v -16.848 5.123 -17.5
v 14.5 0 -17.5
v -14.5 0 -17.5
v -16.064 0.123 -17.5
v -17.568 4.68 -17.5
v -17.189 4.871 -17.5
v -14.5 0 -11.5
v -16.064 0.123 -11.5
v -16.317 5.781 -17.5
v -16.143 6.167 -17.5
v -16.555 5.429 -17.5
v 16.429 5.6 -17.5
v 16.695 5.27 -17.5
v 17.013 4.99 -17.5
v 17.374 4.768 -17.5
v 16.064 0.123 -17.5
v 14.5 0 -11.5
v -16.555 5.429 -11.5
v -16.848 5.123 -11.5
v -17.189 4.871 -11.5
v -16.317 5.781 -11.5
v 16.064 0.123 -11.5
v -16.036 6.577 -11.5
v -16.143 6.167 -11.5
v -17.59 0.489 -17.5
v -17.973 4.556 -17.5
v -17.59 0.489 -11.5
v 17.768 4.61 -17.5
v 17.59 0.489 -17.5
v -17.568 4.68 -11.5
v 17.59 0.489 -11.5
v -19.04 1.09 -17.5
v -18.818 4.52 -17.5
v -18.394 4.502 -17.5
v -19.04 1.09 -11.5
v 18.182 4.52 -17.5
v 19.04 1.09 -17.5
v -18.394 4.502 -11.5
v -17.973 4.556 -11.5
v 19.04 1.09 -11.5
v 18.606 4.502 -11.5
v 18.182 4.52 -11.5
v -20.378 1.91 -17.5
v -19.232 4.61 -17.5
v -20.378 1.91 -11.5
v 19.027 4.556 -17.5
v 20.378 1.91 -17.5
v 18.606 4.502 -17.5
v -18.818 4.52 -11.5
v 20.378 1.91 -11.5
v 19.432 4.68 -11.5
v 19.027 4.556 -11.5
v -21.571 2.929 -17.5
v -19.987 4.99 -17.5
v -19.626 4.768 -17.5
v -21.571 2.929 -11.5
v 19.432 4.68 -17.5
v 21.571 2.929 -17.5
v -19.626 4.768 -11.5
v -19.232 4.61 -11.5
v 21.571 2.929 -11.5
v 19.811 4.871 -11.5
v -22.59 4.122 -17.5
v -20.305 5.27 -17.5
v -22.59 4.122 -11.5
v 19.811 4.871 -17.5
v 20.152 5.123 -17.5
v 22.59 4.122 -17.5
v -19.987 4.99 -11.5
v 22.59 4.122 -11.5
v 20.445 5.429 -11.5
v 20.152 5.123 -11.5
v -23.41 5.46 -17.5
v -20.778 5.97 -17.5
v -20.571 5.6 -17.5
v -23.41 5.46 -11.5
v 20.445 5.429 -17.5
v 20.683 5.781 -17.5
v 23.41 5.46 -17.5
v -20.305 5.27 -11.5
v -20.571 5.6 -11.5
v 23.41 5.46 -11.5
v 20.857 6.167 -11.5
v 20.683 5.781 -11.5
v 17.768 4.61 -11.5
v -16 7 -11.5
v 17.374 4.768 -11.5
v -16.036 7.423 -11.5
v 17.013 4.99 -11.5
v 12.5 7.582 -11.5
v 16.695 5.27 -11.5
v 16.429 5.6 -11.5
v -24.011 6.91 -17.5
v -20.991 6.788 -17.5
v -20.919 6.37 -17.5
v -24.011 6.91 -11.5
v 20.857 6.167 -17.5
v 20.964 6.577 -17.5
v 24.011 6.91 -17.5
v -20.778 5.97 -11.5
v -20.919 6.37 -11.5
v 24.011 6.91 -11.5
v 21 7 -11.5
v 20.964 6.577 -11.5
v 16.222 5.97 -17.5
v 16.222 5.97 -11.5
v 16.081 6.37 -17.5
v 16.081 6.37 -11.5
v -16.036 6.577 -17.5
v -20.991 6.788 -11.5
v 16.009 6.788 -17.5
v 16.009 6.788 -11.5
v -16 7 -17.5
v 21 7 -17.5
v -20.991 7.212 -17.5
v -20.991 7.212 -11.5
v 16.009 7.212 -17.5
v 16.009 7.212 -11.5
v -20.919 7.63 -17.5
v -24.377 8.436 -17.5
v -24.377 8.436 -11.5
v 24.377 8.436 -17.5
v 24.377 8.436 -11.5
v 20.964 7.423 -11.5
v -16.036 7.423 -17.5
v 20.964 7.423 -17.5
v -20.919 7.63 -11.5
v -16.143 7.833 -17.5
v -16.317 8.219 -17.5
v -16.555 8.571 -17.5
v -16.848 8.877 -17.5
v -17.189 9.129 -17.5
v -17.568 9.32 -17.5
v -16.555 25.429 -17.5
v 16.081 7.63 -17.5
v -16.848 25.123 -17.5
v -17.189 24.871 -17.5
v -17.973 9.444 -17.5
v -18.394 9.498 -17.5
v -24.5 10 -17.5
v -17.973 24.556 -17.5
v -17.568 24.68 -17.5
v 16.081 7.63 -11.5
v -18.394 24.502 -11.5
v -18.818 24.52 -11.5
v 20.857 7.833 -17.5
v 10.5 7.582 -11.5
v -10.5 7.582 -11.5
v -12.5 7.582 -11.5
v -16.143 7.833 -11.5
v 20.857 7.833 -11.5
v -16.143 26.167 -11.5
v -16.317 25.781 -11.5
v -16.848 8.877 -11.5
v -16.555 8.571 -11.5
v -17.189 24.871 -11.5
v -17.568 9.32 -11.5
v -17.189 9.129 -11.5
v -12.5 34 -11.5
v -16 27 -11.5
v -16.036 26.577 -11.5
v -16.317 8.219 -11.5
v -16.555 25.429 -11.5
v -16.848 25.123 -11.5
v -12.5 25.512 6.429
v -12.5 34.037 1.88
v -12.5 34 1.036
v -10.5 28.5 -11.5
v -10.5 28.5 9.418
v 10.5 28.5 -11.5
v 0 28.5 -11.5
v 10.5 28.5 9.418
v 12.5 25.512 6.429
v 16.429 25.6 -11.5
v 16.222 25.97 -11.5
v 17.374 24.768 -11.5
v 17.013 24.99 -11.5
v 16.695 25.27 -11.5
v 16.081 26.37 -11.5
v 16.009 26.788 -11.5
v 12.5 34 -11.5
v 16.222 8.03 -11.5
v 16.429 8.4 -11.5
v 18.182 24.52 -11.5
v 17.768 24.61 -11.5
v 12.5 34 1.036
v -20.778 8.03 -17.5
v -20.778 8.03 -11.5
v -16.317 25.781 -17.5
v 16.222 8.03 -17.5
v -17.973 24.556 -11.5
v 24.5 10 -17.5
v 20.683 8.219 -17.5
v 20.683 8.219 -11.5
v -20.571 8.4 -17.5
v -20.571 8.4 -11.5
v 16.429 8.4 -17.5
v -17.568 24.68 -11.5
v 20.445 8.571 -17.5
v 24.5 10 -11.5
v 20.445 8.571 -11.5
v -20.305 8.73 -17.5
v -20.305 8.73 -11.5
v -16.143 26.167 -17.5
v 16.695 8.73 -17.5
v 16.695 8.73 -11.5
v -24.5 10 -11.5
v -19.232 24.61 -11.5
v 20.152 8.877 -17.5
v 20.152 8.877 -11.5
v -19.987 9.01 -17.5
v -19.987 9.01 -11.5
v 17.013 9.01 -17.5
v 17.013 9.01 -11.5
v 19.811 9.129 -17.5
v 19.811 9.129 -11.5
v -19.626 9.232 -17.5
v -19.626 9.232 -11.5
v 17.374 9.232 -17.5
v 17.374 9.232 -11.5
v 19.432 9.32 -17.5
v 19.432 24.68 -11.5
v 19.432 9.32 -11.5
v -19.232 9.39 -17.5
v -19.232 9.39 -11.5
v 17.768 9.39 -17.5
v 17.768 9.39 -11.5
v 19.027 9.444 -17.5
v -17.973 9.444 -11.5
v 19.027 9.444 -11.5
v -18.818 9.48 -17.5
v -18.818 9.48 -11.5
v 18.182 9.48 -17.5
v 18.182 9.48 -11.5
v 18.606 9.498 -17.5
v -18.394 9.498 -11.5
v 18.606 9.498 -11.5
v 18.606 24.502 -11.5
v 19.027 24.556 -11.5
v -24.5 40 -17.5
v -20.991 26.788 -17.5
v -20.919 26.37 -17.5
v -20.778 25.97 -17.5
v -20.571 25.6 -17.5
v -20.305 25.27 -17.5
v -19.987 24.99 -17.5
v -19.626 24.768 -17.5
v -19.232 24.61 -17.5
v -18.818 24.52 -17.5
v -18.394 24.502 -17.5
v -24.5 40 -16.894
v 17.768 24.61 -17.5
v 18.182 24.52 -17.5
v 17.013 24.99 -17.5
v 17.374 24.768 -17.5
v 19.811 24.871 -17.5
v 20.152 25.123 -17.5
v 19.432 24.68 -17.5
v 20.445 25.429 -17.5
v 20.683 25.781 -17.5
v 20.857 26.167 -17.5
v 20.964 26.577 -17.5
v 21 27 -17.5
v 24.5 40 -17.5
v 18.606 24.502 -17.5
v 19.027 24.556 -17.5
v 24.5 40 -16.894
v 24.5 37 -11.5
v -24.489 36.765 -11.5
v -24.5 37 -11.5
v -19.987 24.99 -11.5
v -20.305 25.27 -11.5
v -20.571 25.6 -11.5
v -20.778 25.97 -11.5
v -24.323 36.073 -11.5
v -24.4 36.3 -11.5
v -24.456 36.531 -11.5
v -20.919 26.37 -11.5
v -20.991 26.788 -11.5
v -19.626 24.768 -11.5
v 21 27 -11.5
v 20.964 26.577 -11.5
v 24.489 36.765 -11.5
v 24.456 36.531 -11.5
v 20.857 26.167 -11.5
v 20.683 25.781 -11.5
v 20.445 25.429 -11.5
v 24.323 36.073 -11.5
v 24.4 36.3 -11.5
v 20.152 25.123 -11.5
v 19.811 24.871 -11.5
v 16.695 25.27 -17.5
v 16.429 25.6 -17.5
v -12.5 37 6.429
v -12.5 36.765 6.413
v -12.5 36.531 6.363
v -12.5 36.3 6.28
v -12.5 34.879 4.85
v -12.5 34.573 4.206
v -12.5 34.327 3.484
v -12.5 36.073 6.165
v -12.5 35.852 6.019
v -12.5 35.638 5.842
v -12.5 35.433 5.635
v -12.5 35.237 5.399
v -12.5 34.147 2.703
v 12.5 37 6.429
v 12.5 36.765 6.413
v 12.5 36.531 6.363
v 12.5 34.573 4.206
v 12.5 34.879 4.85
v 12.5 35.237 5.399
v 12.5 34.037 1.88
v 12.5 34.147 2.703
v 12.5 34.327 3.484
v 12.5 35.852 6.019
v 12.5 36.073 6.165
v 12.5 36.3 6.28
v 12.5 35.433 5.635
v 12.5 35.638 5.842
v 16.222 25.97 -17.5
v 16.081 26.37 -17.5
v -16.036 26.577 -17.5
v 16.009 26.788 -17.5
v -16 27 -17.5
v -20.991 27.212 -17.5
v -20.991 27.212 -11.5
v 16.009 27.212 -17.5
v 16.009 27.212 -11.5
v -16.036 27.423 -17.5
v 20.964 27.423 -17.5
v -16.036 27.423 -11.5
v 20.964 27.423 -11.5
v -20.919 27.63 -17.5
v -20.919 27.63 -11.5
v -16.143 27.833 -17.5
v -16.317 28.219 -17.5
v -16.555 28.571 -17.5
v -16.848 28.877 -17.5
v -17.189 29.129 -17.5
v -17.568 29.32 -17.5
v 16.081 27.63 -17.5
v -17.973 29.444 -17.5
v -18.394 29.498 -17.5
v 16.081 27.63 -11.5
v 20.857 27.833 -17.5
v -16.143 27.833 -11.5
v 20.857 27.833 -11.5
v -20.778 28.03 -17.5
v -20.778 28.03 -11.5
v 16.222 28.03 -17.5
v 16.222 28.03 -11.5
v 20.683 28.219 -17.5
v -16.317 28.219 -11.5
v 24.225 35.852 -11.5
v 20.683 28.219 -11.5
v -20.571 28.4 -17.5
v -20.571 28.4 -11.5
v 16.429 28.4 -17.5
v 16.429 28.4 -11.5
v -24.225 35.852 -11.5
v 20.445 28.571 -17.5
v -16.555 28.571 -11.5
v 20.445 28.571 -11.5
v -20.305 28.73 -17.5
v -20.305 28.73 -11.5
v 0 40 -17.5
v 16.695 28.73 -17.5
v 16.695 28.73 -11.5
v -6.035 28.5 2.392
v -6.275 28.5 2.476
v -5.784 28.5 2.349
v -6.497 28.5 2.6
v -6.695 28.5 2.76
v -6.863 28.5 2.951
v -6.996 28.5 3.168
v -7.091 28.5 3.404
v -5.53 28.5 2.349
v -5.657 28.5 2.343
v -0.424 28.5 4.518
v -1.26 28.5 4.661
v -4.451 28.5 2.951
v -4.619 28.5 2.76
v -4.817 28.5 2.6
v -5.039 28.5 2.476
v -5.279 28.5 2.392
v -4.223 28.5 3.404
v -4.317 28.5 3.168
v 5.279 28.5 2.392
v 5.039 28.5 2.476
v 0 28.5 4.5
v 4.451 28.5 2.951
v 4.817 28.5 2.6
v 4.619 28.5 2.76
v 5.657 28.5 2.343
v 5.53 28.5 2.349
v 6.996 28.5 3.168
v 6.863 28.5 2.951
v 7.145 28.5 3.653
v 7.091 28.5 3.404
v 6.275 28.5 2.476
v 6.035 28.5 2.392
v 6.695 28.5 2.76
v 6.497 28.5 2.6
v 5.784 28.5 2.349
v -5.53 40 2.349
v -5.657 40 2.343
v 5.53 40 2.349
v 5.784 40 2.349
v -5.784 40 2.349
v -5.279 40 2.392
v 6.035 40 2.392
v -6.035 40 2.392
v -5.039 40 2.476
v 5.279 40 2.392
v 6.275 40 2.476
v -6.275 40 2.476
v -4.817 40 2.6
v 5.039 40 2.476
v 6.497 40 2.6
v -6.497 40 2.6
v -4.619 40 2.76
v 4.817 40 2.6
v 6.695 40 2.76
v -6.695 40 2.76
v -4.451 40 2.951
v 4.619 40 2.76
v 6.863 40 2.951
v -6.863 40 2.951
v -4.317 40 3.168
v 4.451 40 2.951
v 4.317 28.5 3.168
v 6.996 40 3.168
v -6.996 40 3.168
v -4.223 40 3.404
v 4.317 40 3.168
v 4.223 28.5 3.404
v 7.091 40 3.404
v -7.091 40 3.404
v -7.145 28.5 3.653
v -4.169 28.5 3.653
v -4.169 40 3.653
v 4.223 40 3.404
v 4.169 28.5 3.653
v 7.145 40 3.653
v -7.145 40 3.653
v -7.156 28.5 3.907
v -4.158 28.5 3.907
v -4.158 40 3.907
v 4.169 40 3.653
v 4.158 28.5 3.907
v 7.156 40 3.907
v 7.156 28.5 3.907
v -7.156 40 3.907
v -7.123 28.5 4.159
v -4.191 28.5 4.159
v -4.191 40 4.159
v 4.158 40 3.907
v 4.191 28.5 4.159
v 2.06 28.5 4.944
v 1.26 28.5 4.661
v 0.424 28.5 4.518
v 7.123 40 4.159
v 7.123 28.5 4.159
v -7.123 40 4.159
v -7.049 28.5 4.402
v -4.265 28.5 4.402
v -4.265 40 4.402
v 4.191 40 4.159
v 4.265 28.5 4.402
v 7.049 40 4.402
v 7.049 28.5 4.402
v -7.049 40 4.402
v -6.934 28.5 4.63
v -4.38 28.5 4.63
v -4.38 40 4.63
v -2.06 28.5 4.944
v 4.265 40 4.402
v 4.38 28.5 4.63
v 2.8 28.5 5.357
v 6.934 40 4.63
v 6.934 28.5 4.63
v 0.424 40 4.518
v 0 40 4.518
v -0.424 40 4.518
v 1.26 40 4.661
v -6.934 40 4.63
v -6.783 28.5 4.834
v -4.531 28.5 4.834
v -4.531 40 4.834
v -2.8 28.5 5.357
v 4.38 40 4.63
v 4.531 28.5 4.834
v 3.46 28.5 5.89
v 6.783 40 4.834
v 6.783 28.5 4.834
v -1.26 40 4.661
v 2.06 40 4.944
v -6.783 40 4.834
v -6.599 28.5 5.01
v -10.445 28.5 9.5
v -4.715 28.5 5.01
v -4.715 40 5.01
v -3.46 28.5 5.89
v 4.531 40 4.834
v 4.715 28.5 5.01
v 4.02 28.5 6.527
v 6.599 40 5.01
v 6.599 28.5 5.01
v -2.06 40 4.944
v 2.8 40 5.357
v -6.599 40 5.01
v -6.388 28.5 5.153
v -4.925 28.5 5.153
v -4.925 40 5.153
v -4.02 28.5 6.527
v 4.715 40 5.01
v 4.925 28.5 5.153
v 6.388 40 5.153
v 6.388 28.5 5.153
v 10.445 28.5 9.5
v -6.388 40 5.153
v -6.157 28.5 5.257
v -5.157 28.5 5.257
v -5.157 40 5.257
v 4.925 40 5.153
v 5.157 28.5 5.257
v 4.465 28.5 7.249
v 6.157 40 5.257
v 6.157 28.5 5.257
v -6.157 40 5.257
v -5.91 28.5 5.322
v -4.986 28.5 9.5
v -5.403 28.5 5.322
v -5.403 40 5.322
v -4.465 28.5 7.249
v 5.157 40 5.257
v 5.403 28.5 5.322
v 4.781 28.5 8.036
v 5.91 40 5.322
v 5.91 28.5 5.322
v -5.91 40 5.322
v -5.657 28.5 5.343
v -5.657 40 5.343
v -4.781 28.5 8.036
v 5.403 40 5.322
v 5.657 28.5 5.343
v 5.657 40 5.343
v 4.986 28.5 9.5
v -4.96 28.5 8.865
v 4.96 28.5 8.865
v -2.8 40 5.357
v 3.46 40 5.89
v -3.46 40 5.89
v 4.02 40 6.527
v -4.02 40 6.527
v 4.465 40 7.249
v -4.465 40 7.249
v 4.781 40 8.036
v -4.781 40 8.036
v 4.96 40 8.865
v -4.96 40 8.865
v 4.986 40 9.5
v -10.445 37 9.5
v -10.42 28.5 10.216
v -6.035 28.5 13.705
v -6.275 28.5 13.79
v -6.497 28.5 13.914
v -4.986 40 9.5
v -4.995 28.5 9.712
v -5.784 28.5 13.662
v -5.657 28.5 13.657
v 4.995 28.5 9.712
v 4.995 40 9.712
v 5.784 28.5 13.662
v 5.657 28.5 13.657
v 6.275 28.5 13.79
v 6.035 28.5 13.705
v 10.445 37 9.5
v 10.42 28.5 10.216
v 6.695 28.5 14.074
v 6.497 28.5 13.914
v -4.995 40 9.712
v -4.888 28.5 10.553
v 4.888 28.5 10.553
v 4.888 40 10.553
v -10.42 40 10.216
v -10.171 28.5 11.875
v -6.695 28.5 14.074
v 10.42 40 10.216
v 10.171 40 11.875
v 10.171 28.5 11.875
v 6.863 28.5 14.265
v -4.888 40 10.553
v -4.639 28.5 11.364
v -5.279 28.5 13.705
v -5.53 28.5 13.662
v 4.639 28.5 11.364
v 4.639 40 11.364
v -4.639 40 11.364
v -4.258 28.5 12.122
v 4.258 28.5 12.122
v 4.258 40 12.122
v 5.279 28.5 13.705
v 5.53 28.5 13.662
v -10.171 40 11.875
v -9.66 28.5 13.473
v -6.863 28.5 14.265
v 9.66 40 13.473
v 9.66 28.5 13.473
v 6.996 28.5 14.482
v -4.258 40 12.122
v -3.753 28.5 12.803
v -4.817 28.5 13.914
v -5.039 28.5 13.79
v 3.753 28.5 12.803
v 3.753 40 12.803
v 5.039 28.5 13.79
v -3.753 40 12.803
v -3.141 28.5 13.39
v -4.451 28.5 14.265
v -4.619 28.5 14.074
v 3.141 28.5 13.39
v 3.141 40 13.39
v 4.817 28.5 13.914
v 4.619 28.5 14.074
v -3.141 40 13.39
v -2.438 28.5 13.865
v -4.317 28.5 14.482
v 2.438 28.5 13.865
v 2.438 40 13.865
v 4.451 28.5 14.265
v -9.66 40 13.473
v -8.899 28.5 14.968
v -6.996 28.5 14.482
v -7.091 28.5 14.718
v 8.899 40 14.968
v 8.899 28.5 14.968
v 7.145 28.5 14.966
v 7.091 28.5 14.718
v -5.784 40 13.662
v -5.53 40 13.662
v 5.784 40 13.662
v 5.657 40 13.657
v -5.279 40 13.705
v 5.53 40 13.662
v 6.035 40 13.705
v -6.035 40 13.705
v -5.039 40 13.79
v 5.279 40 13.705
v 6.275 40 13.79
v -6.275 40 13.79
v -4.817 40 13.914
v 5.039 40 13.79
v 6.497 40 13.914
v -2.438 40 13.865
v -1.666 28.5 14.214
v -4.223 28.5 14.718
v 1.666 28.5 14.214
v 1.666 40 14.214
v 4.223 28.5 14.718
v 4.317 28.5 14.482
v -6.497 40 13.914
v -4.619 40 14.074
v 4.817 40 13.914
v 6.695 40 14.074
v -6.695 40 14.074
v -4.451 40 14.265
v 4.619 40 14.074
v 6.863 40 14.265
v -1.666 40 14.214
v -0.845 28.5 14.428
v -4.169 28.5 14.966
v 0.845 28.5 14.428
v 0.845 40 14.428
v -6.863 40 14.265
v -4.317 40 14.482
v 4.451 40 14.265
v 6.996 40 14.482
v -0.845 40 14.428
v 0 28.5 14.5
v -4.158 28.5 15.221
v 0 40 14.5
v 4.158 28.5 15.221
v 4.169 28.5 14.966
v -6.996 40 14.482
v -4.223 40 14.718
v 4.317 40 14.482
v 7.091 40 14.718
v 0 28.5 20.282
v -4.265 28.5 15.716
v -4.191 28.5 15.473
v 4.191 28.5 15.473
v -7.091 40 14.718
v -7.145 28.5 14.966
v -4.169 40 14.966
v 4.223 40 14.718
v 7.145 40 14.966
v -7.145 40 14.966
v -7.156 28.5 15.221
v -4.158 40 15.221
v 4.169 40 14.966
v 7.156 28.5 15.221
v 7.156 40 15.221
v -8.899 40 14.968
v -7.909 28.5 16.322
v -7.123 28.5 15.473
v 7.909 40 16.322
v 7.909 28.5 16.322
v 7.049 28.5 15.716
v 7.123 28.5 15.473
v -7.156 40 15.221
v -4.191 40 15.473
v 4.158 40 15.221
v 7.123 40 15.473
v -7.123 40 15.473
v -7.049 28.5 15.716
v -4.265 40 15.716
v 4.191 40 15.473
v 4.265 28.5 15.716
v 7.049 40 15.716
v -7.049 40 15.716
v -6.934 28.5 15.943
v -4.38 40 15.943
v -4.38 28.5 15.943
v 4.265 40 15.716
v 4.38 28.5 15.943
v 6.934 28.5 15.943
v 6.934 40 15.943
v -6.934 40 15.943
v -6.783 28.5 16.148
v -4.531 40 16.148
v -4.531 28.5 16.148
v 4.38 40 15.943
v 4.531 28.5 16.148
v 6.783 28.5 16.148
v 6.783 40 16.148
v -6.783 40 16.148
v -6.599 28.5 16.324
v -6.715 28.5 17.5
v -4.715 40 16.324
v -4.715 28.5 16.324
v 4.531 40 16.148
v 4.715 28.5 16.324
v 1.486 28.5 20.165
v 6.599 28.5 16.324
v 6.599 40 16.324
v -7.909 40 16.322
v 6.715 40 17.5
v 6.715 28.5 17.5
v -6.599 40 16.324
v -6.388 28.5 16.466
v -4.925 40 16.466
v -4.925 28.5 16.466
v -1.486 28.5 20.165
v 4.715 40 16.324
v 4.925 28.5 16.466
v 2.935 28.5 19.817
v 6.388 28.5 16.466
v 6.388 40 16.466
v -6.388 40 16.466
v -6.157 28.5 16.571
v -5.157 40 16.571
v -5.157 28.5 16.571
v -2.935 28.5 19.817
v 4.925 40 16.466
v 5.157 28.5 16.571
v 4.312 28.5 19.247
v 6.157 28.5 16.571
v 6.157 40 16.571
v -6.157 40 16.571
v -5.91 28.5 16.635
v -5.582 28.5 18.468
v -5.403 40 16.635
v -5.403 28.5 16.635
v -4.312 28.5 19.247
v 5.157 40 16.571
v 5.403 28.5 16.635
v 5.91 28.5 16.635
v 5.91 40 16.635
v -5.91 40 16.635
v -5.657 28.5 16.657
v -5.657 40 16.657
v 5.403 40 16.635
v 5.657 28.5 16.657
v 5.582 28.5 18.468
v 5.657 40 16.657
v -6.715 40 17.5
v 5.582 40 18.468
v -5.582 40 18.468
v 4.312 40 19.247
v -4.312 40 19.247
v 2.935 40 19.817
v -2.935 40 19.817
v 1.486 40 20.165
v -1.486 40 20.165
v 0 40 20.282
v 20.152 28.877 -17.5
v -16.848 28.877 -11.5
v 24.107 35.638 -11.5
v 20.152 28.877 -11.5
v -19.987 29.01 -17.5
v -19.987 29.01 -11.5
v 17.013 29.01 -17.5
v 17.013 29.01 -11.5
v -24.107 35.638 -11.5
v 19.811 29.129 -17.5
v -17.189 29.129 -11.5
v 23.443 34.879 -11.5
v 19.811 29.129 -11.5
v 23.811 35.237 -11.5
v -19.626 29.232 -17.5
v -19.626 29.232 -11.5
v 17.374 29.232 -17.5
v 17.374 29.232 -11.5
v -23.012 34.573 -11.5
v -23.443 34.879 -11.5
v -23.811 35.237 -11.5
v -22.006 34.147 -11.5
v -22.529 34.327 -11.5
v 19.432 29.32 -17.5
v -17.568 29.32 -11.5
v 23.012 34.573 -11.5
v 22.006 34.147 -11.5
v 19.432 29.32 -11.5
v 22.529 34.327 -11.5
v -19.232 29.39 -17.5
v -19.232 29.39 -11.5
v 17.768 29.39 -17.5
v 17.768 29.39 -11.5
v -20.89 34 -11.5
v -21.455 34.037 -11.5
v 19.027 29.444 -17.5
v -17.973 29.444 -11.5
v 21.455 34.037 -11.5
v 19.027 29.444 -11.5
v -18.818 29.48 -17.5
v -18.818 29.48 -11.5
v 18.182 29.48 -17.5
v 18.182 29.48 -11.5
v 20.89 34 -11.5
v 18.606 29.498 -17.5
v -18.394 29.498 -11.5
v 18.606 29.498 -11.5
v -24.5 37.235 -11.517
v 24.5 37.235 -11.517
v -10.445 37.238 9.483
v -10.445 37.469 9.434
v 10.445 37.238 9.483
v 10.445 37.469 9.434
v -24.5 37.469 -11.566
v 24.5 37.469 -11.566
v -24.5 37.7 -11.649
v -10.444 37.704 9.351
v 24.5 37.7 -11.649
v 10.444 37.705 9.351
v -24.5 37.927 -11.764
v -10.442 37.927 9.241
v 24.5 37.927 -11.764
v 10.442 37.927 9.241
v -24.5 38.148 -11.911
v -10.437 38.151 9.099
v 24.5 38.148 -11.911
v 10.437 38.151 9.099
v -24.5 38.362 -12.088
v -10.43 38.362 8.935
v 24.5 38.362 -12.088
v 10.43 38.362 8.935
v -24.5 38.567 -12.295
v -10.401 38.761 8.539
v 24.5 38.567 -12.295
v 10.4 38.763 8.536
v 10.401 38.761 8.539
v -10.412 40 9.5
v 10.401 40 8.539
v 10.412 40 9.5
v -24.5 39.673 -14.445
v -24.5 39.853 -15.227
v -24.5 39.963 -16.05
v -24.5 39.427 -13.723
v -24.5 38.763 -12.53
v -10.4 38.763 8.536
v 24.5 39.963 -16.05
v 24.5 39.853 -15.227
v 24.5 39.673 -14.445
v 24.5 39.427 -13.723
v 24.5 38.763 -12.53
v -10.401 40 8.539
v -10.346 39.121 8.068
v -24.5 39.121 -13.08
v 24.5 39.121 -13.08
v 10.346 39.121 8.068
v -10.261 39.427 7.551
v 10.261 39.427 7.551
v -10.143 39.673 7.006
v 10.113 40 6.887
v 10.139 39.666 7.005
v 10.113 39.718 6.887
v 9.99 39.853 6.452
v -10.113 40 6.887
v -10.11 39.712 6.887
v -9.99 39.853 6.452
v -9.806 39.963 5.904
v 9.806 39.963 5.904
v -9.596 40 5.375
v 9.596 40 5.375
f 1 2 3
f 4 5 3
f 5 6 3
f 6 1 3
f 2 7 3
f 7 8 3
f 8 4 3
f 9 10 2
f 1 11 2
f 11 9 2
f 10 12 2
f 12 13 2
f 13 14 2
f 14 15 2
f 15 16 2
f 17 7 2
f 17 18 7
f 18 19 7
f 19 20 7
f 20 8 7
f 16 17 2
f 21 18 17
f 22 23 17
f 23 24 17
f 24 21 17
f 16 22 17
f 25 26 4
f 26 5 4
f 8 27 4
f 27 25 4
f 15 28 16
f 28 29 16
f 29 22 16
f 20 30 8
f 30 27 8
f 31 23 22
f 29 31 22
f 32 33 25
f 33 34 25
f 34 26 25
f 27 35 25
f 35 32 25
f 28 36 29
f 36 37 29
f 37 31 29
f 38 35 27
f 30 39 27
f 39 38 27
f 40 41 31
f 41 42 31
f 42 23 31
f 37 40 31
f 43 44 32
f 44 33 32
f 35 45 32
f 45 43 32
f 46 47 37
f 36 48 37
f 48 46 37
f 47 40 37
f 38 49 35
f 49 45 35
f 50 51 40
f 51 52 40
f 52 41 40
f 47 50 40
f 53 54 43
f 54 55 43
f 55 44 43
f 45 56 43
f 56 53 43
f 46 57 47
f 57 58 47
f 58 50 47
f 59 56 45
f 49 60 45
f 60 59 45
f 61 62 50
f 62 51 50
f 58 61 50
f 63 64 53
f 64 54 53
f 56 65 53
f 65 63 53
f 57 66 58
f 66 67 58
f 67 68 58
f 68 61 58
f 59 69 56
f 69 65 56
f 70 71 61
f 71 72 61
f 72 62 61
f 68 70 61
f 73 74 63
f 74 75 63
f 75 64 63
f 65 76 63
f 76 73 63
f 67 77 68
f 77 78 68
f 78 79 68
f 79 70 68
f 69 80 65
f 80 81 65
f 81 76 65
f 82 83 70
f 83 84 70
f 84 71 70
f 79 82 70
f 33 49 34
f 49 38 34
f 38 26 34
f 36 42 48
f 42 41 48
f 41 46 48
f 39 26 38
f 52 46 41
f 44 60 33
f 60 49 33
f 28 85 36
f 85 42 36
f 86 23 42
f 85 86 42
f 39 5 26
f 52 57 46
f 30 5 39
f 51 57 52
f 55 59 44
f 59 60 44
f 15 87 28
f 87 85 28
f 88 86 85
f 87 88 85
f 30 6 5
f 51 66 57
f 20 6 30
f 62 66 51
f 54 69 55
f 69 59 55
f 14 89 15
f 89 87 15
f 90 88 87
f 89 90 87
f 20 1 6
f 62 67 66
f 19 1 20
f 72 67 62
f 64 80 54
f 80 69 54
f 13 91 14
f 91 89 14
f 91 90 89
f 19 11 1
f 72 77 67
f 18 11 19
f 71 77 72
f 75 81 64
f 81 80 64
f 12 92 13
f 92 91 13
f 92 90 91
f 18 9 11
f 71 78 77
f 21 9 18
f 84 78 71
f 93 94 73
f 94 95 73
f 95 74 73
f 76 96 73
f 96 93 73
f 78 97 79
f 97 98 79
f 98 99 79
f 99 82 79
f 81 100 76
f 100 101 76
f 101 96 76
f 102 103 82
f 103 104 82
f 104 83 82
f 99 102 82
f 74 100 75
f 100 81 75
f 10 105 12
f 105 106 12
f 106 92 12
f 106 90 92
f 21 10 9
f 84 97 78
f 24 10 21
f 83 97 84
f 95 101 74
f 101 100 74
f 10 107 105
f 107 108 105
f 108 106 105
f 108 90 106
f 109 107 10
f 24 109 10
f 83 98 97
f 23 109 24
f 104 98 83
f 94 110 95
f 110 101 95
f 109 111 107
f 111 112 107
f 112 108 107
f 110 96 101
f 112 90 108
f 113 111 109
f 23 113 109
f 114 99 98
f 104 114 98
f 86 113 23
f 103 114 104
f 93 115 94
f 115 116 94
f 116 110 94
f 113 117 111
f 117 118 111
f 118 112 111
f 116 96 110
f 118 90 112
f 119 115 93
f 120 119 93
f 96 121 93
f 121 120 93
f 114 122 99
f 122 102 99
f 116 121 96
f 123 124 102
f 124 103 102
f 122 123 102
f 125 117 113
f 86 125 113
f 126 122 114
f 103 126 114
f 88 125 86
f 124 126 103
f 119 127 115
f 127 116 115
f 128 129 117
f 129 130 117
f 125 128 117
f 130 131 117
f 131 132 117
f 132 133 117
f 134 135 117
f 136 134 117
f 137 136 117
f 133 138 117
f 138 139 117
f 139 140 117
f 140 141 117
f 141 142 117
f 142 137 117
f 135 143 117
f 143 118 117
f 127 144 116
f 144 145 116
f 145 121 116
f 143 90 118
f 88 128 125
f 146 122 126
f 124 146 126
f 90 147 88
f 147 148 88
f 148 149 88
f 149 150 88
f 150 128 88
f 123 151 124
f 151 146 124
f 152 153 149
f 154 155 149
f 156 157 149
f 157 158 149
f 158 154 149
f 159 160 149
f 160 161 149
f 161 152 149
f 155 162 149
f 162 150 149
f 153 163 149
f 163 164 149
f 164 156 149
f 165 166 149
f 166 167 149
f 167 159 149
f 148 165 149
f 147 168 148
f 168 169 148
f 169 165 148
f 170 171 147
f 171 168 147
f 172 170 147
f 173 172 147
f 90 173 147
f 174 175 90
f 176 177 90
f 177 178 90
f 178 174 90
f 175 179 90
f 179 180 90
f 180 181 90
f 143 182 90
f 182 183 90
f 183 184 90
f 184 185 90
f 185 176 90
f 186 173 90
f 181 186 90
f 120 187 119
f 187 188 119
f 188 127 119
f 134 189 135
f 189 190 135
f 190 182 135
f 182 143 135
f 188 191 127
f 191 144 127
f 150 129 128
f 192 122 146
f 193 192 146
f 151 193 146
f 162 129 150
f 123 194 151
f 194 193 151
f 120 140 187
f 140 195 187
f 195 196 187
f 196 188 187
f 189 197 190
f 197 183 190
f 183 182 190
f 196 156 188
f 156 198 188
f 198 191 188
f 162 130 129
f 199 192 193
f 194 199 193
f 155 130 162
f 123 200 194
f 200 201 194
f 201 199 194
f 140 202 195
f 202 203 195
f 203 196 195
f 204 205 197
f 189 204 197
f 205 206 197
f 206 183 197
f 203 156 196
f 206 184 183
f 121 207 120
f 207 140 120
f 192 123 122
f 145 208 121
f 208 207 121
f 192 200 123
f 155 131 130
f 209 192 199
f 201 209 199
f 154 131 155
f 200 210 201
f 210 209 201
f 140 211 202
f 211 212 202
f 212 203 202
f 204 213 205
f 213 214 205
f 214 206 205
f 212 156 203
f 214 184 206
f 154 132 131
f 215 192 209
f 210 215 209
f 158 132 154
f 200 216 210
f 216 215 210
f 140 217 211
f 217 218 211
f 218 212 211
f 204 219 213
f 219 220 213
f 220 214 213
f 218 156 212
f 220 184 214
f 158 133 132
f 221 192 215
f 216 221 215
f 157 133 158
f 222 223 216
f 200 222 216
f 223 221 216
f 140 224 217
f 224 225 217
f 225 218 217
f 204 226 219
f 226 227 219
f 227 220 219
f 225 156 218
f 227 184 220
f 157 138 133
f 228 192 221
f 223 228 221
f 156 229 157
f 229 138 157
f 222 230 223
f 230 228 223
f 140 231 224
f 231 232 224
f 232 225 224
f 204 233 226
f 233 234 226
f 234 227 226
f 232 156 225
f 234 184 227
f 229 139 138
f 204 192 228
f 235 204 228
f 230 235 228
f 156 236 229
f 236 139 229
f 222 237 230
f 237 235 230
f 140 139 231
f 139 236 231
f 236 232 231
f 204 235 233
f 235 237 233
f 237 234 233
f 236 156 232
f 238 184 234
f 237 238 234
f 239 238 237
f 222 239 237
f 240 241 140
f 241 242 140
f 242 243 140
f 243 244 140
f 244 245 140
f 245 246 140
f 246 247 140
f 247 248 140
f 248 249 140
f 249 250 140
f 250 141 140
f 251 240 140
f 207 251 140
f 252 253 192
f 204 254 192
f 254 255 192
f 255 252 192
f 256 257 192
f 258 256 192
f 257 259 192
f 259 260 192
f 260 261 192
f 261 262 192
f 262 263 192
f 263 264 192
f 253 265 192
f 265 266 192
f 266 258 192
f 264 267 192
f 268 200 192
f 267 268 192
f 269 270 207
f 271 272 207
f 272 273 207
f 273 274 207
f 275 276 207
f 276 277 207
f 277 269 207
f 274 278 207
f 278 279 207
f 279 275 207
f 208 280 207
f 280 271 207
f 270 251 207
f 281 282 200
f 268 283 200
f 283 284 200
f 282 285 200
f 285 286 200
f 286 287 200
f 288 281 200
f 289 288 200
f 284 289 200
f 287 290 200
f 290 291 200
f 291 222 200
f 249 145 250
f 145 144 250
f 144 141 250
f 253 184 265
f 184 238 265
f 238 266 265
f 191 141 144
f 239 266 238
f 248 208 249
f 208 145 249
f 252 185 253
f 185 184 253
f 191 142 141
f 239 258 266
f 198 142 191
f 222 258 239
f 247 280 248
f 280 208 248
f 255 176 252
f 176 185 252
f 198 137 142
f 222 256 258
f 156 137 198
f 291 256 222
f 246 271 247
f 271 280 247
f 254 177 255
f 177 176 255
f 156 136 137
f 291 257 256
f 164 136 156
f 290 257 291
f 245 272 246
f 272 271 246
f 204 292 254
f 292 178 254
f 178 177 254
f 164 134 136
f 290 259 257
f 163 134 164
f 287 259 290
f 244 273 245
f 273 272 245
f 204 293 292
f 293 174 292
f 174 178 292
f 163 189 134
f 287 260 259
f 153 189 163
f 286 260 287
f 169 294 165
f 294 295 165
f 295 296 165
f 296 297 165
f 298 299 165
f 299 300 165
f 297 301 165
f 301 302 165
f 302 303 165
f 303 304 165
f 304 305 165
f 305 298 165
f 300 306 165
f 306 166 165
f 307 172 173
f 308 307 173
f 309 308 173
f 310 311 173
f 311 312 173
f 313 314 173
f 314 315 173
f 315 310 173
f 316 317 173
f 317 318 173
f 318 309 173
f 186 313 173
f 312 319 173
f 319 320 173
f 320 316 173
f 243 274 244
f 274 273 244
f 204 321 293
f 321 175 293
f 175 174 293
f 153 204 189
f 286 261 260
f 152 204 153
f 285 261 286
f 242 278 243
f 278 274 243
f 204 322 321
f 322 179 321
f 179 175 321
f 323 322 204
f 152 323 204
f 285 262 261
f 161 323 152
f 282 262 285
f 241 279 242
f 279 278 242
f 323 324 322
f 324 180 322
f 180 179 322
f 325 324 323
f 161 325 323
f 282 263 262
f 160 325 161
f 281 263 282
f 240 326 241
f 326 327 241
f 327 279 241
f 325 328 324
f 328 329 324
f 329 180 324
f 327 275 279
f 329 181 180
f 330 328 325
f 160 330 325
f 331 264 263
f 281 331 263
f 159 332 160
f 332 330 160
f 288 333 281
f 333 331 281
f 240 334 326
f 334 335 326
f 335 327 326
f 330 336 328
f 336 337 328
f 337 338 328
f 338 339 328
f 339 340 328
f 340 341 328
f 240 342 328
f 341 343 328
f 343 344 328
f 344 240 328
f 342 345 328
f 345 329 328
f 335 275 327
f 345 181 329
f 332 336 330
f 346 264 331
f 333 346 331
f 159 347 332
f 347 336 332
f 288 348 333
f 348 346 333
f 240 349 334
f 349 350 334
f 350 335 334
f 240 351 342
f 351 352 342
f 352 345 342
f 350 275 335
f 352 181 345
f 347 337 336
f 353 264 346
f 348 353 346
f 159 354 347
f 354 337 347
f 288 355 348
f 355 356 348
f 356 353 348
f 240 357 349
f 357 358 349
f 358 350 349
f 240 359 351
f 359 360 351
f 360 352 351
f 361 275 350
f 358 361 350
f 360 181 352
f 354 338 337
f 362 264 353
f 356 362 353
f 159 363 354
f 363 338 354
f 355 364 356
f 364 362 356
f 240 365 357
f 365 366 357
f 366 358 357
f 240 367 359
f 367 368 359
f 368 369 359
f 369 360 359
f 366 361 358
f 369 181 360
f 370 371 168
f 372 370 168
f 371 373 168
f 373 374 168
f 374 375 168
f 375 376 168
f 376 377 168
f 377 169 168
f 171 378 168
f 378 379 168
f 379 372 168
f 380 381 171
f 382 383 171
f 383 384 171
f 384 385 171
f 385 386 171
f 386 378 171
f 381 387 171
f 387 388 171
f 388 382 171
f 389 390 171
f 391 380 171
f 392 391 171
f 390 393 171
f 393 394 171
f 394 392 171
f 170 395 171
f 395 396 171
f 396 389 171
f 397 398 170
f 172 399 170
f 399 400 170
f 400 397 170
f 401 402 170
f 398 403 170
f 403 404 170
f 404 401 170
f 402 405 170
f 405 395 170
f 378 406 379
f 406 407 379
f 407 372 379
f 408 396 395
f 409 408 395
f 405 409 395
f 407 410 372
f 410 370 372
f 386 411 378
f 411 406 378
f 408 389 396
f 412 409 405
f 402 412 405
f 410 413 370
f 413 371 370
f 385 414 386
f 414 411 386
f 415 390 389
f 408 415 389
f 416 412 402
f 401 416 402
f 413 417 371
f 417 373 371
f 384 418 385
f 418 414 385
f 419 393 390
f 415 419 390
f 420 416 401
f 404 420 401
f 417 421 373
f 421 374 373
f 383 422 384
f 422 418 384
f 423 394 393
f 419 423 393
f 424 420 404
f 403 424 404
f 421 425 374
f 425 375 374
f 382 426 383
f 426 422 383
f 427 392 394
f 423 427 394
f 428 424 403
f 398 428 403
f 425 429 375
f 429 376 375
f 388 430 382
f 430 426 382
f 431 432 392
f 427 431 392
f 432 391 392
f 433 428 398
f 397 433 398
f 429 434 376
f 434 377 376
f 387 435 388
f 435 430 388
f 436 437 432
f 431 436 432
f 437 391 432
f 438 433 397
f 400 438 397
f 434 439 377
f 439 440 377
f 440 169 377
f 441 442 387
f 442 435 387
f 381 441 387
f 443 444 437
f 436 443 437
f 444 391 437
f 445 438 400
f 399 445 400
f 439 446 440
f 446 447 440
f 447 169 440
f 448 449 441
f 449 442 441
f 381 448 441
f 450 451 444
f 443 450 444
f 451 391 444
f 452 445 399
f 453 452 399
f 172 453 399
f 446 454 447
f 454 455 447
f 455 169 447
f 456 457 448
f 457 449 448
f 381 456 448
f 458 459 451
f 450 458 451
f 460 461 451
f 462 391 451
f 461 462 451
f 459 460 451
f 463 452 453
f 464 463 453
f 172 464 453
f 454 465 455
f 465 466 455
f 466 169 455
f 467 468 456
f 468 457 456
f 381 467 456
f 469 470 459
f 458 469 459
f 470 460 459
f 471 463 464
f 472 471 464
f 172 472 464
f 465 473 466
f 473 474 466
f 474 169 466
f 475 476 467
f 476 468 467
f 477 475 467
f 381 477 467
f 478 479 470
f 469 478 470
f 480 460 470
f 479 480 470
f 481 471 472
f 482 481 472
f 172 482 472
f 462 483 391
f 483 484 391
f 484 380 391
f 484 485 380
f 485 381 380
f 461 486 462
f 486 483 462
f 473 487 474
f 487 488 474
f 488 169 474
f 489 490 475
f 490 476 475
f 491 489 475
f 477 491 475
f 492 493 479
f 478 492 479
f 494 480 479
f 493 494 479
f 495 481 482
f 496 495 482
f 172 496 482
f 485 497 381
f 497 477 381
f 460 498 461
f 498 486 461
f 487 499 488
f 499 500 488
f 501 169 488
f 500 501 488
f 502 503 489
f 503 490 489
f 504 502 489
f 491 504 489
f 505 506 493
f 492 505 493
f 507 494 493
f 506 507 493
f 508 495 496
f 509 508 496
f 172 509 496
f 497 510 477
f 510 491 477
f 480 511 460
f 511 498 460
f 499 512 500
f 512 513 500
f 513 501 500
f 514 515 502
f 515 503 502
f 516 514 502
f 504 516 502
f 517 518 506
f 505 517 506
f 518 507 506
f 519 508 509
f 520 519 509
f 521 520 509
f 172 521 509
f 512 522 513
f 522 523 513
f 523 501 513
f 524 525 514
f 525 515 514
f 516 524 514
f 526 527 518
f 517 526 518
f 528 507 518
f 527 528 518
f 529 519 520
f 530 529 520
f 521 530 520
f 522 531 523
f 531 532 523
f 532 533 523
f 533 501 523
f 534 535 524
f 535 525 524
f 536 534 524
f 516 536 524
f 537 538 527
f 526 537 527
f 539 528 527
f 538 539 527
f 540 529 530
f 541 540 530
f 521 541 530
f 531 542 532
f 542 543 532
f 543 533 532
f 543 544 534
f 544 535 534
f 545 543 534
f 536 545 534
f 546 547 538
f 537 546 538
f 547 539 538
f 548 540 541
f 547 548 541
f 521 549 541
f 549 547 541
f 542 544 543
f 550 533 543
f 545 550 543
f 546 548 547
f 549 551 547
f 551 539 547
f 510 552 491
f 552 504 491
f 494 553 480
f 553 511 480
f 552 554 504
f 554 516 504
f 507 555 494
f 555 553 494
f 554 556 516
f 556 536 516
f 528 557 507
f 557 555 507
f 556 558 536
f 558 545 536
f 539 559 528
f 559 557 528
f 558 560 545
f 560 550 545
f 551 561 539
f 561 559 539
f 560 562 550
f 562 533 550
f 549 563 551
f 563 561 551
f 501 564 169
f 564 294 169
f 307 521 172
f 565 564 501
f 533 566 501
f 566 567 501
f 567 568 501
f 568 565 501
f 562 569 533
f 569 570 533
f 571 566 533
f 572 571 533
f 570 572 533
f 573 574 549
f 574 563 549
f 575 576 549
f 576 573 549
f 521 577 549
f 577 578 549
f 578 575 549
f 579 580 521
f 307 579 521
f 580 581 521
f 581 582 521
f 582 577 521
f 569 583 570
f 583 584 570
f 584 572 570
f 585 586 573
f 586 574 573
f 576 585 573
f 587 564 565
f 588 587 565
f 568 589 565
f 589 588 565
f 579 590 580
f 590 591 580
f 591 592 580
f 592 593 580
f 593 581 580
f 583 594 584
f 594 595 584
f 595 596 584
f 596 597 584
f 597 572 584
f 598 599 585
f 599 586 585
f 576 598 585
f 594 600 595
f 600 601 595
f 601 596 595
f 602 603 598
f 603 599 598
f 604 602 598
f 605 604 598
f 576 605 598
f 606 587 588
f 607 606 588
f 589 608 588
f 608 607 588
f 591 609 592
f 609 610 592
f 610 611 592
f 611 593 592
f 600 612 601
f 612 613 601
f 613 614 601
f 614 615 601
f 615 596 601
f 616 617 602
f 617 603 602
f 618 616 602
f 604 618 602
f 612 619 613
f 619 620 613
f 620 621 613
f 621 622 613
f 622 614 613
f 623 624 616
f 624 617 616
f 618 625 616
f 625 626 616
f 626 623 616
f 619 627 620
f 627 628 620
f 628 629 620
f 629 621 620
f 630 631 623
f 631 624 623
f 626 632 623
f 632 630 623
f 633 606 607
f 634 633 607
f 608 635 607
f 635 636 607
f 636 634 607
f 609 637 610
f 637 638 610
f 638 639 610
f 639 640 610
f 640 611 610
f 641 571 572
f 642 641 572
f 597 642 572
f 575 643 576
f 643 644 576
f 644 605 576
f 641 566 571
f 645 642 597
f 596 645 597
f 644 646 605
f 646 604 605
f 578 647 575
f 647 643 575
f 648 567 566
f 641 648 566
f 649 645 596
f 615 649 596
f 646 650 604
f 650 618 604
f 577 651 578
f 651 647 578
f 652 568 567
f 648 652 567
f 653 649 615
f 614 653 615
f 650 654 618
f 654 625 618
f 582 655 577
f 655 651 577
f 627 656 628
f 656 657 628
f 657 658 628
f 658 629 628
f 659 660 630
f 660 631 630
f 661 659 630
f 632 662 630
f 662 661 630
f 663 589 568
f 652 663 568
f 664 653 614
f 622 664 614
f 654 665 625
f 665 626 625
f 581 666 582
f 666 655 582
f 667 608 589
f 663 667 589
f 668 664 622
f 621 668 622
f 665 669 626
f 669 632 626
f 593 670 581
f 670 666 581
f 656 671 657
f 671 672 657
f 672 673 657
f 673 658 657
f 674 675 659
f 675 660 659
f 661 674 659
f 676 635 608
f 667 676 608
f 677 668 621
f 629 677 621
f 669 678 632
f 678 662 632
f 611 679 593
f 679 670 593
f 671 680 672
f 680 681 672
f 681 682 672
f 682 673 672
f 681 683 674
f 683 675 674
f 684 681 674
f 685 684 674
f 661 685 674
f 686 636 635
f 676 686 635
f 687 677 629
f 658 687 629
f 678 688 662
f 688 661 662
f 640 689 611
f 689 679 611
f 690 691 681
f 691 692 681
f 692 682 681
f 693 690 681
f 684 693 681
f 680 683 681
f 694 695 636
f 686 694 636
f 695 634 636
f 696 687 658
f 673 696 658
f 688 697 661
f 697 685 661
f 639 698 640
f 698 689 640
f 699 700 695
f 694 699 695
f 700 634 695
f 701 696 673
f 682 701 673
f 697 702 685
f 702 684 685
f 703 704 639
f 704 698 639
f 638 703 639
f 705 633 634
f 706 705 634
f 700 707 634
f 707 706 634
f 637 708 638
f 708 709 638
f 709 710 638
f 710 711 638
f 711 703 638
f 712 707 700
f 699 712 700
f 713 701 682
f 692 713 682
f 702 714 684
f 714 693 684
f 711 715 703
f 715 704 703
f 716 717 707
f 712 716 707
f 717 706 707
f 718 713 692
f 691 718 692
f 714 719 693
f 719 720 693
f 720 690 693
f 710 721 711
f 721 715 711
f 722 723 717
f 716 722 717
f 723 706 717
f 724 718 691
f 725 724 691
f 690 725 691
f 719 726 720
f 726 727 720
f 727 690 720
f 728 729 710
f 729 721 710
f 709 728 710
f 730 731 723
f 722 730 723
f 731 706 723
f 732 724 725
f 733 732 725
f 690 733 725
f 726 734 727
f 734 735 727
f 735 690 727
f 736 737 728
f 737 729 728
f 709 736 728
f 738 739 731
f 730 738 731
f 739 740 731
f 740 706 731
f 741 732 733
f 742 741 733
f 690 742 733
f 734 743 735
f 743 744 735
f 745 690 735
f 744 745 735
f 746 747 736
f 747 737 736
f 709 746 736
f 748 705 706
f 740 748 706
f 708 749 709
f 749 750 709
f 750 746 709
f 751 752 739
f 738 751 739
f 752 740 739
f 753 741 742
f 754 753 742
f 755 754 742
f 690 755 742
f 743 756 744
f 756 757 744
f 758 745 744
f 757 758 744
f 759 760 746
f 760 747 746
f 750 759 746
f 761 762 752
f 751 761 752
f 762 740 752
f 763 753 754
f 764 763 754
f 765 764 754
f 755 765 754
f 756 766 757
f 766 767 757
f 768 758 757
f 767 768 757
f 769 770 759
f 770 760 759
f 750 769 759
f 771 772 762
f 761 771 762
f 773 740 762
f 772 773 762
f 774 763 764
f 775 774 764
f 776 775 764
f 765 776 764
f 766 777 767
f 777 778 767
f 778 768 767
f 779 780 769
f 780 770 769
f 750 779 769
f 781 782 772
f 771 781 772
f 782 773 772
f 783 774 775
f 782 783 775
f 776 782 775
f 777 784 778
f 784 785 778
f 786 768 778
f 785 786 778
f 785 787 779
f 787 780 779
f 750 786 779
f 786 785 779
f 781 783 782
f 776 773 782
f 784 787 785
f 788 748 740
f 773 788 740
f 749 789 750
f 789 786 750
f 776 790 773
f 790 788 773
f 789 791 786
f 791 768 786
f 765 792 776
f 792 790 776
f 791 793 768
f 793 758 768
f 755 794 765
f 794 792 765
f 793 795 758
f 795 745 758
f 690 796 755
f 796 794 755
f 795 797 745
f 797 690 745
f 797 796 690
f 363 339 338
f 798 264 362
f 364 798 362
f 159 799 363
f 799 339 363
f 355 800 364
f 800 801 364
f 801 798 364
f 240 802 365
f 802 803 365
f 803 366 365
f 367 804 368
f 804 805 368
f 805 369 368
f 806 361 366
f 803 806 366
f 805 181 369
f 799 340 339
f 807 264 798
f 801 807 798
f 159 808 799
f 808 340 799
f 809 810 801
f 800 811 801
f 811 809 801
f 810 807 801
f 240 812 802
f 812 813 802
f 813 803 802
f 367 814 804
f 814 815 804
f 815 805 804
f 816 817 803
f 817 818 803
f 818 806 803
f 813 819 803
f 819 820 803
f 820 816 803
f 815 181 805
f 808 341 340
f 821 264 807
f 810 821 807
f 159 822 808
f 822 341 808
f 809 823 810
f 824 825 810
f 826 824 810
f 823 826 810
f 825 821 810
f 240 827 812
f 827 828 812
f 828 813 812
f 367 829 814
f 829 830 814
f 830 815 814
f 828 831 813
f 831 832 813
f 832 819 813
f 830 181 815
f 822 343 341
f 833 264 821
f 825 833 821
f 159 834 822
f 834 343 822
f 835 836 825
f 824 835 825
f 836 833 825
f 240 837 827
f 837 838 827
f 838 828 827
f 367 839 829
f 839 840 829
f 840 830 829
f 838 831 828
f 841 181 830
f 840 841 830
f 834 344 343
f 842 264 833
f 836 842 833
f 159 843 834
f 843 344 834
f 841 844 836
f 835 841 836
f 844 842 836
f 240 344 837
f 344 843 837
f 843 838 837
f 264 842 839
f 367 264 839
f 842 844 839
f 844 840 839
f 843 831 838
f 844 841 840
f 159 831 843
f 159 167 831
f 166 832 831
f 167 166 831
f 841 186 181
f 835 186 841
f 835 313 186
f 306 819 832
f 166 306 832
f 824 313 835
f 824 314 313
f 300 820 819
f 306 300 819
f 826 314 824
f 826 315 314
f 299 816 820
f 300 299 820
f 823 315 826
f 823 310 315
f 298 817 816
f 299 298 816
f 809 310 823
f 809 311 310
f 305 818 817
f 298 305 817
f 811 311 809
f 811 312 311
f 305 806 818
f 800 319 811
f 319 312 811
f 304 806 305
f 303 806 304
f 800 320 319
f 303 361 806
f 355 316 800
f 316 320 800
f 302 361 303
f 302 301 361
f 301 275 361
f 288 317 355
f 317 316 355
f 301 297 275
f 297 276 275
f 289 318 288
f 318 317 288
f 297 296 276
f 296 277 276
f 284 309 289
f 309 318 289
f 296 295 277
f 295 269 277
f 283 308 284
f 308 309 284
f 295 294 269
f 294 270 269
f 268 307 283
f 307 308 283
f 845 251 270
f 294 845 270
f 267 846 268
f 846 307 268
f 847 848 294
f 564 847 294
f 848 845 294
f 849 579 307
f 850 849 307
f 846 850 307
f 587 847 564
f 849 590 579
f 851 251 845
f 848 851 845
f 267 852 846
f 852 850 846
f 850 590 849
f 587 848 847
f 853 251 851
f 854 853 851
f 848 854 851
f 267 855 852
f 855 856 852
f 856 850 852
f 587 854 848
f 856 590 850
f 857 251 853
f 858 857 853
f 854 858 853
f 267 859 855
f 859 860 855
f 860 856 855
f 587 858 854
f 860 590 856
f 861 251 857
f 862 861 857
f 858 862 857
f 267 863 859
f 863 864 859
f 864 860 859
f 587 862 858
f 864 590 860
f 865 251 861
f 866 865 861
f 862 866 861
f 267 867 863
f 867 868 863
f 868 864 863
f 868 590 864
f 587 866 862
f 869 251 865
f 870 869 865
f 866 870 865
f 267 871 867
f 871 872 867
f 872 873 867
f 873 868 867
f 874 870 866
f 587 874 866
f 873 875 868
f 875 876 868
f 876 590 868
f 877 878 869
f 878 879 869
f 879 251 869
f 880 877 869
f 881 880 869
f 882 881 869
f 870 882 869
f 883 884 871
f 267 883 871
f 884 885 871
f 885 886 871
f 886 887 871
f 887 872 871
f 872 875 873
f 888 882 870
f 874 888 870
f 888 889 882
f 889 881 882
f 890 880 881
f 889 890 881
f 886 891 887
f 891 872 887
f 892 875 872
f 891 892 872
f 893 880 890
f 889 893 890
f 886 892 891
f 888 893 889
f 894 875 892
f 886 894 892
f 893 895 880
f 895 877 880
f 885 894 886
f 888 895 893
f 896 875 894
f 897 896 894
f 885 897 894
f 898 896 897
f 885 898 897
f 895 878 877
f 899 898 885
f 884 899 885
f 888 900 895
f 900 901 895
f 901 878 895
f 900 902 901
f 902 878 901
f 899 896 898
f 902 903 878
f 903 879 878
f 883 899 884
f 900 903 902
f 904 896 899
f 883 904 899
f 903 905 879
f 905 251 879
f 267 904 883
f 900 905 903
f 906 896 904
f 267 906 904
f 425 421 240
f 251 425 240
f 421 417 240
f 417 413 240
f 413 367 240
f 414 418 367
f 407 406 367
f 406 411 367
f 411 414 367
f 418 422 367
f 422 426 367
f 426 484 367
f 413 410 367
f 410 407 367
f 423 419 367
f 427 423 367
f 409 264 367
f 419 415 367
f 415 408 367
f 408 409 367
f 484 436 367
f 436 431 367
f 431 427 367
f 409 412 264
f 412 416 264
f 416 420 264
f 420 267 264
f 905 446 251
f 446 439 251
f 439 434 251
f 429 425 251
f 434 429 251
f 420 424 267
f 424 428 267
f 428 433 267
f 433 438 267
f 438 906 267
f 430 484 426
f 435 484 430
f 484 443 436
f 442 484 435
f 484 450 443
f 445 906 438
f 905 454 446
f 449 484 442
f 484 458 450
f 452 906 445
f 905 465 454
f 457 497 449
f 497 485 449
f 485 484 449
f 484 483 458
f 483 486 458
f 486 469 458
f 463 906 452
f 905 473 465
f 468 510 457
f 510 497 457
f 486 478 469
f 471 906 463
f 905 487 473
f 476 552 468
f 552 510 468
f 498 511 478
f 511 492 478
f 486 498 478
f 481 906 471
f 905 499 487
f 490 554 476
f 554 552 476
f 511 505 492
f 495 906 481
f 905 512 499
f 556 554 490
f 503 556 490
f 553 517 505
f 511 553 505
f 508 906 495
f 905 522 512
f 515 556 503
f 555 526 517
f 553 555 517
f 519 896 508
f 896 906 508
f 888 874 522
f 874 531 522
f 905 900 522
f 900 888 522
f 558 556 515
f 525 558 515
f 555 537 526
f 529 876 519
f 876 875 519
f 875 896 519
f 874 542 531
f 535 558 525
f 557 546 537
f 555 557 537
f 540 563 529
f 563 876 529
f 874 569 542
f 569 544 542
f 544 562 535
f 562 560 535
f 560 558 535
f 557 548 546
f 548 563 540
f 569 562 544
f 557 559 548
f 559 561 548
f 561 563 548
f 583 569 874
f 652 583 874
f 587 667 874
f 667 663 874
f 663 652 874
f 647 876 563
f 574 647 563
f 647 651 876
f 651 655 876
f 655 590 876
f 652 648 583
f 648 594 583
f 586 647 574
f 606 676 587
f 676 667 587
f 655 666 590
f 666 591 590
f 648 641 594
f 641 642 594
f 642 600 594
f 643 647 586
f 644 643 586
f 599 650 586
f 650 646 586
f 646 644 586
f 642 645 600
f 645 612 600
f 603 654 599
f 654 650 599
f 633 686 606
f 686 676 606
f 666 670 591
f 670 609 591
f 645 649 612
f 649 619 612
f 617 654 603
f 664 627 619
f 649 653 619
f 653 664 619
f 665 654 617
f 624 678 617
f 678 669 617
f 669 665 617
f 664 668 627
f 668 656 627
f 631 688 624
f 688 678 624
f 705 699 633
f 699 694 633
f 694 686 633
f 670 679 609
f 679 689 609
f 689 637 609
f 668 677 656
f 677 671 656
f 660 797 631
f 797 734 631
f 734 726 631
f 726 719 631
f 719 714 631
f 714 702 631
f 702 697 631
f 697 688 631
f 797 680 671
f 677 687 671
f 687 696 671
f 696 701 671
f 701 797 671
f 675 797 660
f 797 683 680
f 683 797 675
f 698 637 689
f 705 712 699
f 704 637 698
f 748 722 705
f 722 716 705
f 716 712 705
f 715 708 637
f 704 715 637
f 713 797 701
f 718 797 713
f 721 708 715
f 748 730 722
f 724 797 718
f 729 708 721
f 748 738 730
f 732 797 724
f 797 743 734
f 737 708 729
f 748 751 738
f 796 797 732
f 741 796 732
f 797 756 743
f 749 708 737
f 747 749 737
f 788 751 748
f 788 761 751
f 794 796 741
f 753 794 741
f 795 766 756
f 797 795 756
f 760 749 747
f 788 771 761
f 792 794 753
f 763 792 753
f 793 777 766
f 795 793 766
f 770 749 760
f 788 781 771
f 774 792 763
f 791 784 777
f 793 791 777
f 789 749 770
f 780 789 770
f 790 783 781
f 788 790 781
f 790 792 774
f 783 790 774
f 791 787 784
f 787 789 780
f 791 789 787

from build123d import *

# Parameters (mm, degrees)
SKETCH_1_W           = 49
SKETCH_1_H           = 35
EXTRUDE_1_DEPTH      = 40
SKETCH_2_R           = 5
SKETCH_2_R_2         = 1.5
CUT_EXTRUDE_1_DEPTH  = 40
SKETCH_3_W           = 12
SKETCH_3_H           = 34
CUT_EXTRUDE_3_DEPTH  = 29
CUT_EXTRUDE_6_DEPTH  = 50
SKETCH_7_W           = 21
SKETCH_7_H           = 28.5
CUT_EXTRUDE_8_DEPTH  = 29
CUT_EXTRUDE_10_DEPTH = 29
SKETCH_12_R          = 2.5
CUT_EXTRUDE_12_DEPTH = 56.14752941
FILLET_1_R           = 10
FILLET_2_R           = 10
FILLET_4_R           = 3
EXTRUDE_2_DEPTH      = 11.5


with BuildPart() as part:
    # 草圖1 → 填料-伸長1 (new body)
    with BuildSketch(Plane(origin=(0, 0, 0), x_dir=(1, 0, 0), z_dir=(0, 1, 0))):
        Rectangle(SKETCH_1_W, SKETCH_1_H)
    extrude(amount=EXTRUDE_1_DEPTH)

    # 草圖2 → 除料-伸長1 (cut)
    with BuildSketch(Plane(origin=(0, 40, 0), x_dir=(1, 0, 0), z_dir=(0, 1, 0))):
        with Locations(Location((0, -9.5, 0), (0, 0, 270))):
            Circle(SKETCH_2_R)
        with Locations(Location((5.656854249, -3.843145751, 0), (0, 0, 270))):
            Circle(SKETCH_2_R_2)
        with Locations(Location((5.656854249, -15.156854249, 0), (0, 0, 90))):
            Circle(SKETCH_2_R_2)
        with Locations(Location((-5.656854249, -15.156854249, 0), (0, 0, 270))):
            Circle(SKETCH_2_R_2)
        with Locations(Location((-5.656854249, -3.843145751, 0), (0, 0, 90))):
            Circle(SKETCH_2_R_2)
    extrude(amount=-CUT_EXTRUDE_1_DEPTH, mode=Mode.SUBTRACT)

    # 草圖3 → 除料-伸長3 (cut)
    with BuildSketch(Plane.XY.offset(17.5)):
        with Locations((-18.5, 17)):
            Rectangle(SKETCH_3_W, SKETCH_3_H)
        with Locations((18.5, 17)):
            Rectangle(SKETCH_3_W, SKETCH_3_H)
    extrude(amount=-CUT_EXTRUDE_3_DEPTH, mode=Mode.SUBTRACT)

    # 草圖6 → 除料-伸長6 (cut)
    with BuildSketch(Plane(origin=(0, 40, 0), x_dir=(1, 0, 0), z_dir=(0, 1, 0))):
        with BuildLine():
            Line((-10.444900063, -9.5), (-24.5, 11.5))
            Line((-24.5, 11.5), (-24.5, -17.5))
            Line((-24.5, -17.5), (-6.715350871, -17.5))
            ThreePointArc((-6.715350871, -17.5), (-9.466707613, -13.913318966), (-10.444900063, -9.5))
        make_face()
        with BuildLine():
            Line((24.5, 11.5), (10.444900063, -9.5))
            ThreePointArc((10.444900063, -9.5), (9.466707613, -13.913318966), (6.715350871, -17.5))
            Line((6.715350871, -17.5), (24.5, -17.5))
            Line((24.5, -17.5), (24.5, 11.5))
        make_face()
    extrude(amount=-CUT_EXTRUDE_6_DEPTH, mode=Mode.SUBTRACT)

    # 草圖7 → 除料-伸長8 (cut)
    with BuildSketch(Plane.XY.offset(17.5)):
        with Locations((0, 14.25)):
            Rectangle(SKETCH_7_W, SKETCH_7_H)
    extrude(amount=-CUT_EXTRUDE_8_DEPTH, mode=Mode.SUBTRACT)

    # 草圖10 → 除料-伸長10 (cut)
    with BuildSketch(Plane.ZY.offset(12.5)):
        Polygon((-11.5, 0), (6.429434947, 0), (9.417674105, 0), (9.417674105, 28.5), (-11.5, 7.582325895), align=None)
    extrude(amount=-CUT_EXTRUDE_10_DEPTH, mode=Mode.SUBTRACT)

    # 草圖12 → 除料-伸長12 (cut, through all)
    with BuildSketch(Plane.XY.offset(-11.5)):
        with Locations((18.5, 7)):
            Circle(SKETCH_12_R)
        with Locations((18.5, 27)):
            Circle(SKETCH_12_R)
        with Locations((-18.5, 7)):
            Circle(SKETCH_12_R)
        with Locations((-18.5, 27)):
            Circle(SKETCH_12_R)
    extrude(amount=-CUT_EXTRUDE_12_DEPTH, mode=Mode.SUBTRACT)

    # 圓角1
    fillet_1_edges = [part.edges().sort_by_distance(p)[0] for p in [
        (-24.5, 0, -14.5),
    ]]
    fillet(fillet_1_edges, radius=FILLET_1_R)

    # 圓角2
    fillet_2_edges = [part.edges().sort_by_distance(p)[0] for p in [
        (24.5, 0, -14.5),
    ]]
    fillet(fillet_2_edges, radius=FILLET_2_R)

    # 圓角4
    fillet_4_edges = [part.edges().sort_by_distance(p)[0] for p in [
        (-18.5, 34, -2.535282526),
        (-17.472450031, 40, -1),
        (17.472450031, 40, -1),
        (18.5, 34, -2.535282526),
    ]]
    fillet(fillet_4_edges, radius=FILLET_4_R - 0.0001)  # a hair under: the kernel refuses the full size

    # 草圖14 → 填料-伸長2 (add)
    with BuildSketch(Plane(origin=(0, 40, 0), x_dir=(1, 0, 0), z_dir=(0, 1, 0))):
        with BuildLine():
            Line((-6.715350871, -17.5), (6.715350871, -17.5))
            ThreePointArc((6.715350871, -17.5), (0, -20.281589407), (-6.715350871, -17.5))
        make_face()
    extrude(amount=-EXTRUDE_2_DEPTH)


solid = part.part
